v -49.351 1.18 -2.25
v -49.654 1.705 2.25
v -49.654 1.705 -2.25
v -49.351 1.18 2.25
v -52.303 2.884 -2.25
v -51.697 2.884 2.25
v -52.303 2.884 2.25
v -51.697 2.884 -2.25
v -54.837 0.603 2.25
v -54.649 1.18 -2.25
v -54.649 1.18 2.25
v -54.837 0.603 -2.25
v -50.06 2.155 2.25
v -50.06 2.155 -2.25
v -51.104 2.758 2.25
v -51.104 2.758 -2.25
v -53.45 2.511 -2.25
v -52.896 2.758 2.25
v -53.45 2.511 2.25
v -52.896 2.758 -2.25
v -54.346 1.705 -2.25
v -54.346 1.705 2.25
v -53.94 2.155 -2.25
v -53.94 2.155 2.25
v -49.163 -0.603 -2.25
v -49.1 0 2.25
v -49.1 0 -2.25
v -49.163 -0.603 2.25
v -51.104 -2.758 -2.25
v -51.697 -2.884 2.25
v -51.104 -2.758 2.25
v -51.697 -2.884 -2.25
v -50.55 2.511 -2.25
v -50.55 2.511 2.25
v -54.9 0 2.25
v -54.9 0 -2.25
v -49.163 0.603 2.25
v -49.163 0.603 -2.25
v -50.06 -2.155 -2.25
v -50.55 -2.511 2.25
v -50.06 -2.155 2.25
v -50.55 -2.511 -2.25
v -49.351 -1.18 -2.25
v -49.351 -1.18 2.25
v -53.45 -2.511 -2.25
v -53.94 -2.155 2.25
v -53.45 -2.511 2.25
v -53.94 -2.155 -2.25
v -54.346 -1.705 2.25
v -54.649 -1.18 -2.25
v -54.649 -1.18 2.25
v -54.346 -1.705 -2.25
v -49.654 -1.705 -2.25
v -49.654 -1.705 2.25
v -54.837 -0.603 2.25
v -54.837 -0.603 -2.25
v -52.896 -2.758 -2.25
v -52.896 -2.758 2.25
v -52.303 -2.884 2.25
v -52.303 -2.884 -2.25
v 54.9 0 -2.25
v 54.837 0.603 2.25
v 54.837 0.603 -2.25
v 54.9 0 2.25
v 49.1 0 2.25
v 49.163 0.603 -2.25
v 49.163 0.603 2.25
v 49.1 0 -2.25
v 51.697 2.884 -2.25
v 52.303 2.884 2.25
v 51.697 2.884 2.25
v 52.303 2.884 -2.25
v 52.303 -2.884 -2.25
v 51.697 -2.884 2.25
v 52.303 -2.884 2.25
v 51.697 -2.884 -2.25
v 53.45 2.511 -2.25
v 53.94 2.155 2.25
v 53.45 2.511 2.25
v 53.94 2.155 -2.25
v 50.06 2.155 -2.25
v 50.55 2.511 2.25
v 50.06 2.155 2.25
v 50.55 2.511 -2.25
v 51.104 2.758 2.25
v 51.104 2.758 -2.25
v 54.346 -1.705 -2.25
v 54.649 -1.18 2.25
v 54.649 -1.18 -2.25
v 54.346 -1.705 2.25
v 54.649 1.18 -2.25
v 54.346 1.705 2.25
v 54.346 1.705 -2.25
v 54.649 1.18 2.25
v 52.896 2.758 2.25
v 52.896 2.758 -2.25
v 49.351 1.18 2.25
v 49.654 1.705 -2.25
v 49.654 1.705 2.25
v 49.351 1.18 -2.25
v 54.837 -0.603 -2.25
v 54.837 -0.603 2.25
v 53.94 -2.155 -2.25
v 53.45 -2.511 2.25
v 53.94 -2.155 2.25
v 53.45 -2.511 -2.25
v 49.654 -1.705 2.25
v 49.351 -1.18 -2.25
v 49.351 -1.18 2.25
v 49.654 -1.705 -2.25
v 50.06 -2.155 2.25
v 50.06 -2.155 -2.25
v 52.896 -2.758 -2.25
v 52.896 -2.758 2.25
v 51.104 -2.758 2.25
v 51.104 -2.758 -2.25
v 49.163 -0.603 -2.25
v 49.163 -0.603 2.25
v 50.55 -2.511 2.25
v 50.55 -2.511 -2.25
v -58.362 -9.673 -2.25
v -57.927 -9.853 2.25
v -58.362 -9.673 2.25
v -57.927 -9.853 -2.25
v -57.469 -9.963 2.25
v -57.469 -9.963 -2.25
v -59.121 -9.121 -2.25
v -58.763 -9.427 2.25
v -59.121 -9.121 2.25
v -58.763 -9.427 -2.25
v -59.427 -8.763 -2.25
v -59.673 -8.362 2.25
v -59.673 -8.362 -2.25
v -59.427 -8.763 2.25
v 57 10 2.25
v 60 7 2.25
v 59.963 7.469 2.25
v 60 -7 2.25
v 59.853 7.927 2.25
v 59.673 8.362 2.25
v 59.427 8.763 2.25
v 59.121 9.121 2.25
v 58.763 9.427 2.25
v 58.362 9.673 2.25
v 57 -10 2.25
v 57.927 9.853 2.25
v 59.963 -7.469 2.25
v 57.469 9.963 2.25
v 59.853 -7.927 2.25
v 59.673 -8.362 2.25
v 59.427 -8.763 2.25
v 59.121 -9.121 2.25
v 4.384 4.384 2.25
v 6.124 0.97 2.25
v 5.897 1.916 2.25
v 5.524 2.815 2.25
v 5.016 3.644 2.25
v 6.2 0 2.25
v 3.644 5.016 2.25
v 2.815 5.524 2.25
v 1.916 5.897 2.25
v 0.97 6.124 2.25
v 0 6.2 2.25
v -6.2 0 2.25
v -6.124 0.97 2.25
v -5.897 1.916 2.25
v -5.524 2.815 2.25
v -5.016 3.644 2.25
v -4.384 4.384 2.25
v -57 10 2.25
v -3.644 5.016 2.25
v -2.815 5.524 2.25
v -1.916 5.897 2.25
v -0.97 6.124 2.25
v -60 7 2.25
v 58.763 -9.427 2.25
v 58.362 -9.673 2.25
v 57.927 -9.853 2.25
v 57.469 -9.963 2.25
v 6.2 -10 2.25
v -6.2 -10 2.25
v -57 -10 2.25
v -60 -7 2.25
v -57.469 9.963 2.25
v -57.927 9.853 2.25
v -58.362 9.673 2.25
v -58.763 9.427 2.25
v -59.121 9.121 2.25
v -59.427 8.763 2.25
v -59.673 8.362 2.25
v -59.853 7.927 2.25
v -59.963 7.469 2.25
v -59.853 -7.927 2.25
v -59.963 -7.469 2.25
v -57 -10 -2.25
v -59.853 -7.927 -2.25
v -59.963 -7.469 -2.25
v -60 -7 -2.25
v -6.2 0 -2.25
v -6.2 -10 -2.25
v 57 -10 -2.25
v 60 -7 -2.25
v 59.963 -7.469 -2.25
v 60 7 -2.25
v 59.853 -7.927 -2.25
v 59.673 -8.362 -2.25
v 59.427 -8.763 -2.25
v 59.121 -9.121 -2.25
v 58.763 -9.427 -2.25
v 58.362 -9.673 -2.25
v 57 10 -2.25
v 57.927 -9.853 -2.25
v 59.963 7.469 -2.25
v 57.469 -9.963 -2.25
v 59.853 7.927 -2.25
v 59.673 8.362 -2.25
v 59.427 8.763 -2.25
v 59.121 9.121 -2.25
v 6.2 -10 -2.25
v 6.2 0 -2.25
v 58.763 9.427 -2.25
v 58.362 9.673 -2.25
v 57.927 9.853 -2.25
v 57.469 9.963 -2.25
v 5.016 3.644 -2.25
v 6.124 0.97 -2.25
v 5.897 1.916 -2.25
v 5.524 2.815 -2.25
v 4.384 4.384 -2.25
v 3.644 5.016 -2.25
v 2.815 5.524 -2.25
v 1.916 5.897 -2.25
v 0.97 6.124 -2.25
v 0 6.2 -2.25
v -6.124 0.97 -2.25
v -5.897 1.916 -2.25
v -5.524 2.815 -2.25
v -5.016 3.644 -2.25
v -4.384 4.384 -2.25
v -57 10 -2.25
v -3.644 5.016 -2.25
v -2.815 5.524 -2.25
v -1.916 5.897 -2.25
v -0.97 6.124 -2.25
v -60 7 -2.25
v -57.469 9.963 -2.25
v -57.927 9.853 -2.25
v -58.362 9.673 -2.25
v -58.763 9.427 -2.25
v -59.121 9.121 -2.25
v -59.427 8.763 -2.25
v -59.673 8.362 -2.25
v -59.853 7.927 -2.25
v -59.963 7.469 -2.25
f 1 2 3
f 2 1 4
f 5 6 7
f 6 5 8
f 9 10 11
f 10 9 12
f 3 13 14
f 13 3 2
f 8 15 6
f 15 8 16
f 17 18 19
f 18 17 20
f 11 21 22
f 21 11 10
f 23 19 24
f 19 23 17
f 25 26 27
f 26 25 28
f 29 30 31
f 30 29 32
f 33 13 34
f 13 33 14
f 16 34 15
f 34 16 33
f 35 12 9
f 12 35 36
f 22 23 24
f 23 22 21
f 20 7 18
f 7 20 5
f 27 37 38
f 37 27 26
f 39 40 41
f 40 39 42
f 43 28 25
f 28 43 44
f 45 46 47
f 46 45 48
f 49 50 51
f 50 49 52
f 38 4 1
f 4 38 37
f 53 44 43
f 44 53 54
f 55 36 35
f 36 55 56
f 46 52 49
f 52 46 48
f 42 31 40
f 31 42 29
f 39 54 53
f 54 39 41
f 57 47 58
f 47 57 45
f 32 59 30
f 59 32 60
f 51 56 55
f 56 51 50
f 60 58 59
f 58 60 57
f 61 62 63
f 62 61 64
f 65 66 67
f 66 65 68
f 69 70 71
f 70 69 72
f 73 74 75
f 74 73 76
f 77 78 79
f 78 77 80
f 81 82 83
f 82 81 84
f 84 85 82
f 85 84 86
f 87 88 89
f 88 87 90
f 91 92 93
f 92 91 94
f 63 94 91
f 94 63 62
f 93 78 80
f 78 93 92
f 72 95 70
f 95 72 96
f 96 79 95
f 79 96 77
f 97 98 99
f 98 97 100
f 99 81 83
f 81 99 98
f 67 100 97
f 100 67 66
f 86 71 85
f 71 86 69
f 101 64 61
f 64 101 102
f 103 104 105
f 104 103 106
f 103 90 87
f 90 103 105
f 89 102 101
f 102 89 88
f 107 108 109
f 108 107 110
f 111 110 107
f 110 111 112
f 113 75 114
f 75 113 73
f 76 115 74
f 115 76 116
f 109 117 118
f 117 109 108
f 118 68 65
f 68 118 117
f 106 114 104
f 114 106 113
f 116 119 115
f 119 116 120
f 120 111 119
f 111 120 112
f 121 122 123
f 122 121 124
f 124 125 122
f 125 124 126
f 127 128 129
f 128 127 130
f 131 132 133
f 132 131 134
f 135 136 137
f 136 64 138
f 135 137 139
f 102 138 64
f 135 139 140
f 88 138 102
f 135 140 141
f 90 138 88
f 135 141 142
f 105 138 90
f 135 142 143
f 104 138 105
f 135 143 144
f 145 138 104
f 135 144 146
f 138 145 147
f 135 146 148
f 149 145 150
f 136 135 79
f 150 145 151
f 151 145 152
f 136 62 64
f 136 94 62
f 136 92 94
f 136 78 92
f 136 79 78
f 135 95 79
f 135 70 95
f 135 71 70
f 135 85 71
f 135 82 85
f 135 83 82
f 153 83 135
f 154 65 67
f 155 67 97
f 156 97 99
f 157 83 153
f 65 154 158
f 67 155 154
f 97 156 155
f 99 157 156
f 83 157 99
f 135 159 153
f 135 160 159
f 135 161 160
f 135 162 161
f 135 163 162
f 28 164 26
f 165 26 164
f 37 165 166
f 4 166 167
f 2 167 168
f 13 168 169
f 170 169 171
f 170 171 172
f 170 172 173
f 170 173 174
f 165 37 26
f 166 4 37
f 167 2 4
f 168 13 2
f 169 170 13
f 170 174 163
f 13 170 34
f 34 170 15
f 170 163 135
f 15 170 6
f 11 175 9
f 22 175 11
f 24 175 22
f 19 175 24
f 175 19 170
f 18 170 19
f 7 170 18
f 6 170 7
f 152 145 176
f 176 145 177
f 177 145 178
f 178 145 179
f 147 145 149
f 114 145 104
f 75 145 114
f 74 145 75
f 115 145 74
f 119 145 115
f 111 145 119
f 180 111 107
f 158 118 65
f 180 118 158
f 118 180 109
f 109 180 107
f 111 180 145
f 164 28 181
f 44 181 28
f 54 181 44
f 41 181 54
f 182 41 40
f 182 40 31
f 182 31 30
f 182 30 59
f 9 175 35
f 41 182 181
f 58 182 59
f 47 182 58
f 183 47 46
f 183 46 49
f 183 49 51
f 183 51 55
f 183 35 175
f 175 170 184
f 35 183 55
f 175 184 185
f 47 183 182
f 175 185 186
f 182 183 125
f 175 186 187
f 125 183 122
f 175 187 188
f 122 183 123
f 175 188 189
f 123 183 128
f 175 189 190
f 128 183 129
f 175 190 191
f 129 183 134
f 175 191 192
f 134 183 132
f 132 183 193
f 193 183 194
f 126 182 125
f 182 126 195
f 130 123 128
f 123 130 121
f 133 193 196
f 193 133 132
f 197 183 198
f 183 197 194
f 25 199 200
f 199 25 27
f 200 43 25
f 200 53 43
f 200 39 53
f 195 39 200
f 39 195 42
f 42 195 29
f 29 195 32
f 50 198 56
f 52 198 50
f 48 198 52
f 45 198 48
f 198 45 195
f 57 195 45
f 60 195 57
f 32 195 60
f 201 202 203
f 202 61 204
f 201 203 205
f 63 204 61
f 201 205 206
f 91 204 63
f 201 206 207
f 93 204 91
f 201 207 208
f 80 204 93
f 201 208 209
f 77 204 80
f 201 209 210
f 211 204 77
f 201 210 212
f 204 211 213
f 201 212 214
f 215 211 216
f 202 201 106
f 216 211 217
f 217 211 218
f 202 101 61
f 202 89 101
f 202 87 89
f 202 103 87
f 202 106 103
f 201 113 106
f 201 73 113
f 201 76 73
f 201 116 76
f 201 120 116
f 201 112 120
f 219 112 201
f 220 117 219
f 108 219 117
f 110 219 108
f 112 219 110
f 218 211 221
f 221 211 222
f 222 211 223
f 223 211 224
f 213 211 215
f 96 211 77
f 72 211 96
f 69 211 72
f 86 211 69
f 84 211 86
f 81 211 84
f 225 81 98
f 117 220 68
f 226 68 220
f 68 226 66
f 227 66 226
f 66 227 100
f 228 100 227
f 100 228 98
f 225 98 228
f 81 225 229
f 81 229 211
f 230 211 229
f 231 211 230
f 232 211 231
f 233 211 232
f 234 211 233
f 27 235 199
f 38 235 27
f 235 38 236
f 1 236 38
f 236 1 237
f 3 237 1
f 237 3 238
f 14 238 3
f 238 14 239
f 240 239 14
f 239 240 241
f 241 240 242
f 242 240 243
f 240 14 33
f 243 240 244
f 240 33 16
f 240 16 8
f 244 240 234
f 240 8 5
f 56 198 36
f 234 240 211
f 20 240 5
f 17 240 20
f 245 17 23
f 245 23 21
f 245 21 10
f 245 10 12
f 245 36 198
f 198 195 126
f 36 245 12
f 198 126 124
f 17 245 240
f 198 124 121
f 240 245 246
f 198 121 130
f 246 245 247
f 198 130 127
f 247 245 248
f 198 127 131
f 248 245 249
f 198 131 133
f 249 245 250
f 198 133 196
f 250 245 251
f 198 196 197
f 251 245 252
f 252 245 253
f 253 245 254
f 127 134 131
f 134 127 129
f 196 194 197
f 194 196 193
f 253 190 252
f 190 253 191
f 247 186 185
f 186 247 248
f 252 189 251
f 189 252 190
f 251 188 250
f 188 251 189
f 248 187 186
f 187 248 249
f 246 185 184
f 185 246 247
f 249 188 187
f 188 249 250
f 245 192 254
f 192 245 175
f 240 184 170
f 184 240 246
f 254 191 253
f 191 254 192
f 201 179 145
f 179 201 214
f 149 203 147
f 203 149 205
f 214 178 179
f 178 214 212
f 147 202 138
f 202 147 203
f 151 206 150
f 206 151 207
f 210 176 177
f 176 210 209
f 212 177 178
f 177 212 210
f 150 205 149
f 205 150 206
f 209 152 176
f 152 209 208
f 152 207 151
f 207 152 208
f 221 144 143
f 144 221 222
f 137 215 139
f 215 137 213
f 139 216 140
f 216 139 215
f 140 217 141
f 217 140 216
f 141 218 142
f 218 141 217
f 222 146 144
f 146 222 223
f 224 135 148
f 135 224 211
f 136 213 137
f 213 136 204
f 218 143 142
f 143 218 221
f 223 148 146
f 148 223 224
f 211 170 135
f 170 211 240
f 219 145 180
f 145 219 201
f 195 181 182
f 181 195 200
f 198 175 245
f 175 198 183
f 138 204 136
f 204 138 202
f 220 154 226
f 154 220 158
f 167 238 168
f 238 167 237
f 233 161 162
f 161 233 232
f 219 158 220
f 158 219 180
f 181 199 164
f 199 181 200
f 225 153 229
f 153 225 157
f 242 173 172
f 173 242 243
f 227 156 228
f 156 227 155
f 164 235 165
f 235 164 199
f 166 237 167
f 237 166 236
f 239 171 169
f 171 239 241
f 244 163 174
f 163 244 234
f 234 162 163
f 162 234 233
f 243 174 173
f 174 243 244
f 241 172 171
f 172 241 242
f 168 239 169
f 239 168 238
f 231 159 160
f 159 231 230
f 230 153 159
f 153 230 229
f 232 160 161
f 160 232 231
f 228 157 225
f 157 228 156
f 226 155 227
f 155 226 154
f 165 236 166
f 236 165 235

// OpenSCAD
// Thing O Matic J-Head mount

use <MCAD/boxes.scad>;

module jheadMount(thickness=4.5,mountingHoleSep=104){
    union(){
        difference(){
            union(){
                roundedBox([120,20,thickness],3,true,center=false,$fn=40);
            } 
            // mounting holes for M5 screws
            for(i=[-1,1]){
                translate([mountingHoleSep/2*i,0,0]) cylinder(d=5.8,h=thickness+1,$fn=30,center=true);
            }
            // groovemount
            hull(){
               mountDiam = 12.4;
              cylinder(d=mountDiam,h=thickness+1,center=true,$fn=40);  
              translate([0,-10,0]) cube([mountDiam,20,thickness+1],center=true);
            }
        }
        
    }
}

jheadMount();
